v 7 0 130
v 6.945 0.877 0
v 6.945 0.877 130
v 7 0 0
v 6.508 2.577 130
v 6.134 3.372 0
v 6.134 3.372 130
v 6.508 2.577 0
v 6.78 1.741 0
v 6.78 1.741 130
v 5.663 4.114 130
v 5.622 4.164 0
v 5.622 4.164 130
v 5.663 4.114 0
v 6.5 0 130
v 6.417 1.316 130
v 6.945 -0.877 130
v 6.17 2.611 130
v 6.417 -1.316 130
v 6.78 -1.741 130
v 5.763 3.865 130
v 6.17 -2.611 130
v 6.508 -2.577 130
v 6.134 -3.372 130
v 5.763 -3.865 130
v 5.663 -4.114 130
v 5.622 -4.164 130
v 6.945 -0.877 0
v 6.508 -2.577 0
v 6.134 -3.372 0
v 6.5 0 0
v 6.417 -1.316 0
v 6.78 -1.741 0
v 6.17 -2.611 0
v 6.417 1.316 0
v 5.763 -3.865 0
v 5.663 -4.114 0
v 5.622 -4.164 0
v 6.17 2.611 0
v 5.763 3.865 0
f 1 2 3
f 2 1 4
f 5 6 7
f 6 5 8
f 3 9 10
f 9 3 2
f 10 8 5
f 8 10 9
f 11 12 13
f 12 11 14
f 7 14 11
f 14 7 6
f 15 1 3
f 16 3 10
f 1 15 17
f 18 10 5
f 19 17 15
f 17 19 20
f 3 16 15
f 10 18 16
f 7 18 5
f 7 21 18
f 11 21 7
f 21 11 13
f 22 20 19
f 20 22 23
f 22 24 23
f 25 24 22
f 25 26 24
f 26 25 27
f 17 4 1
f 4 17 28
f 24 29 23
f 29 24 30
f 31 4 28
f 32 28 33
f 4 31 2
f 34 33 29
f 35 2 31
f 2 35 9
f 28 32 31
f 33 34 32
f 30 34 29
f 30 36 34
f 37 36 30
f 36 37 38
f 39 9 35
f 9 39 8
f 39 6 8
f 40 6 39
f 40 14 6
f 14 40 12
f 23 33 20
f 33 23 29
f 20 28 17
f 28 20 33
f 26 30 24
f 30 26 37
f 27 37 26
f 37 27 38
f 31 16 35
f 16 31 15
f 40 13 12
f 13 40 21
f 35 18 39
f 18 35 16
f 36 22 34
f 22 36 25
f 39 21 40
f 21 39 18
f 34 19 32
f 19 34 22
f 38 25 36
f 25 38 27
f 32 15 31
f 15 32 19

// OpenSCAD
$fn = 50;


difference() {
	union() {
		cylinder(h = 130, r = 7.0000000000);
		translate(v = [-7.0000000000, 0, 0]) {
			cylinder(h = 130, r = 7.0000000000);
		}
	}
	union() {
		cylinder(h = 130, r = 3.2500000000);
		cylinder(h = 130, r = 1.8000000000);
		cylinder(h = 130, r = 1.8000000000);
		cylinder(h = 130, r = 1.8000000000);
		translate(v = [-11.5000000000, 0, 0]) {
			hull() {
				translate(v = [-3.7500000000, 0.0000000000, 0]) {
					cylinder(h = 130, r = 10.5000000000);
				}
				translate(v = [3.7500000000, 0.0000000000, 0]) {
					cylinder(h = 130, r = 10.5000000000);
				}
				translate(v = [-3.7500000000, -0.0000000000, 0]) {
					cylinder(h = 130, r = 10.5000000000);
				}
				translate(v = [3.7500000000, -0.0000000000, 0]) {
					cylinder(h = 130, r = 10.5000000000);
				}
			}
		}
		translate(v = [-4.0000000000, 0, 0.0000000000]) {
			cylinder(h = 130, r = 10.5000000000);
		}
	}
}
